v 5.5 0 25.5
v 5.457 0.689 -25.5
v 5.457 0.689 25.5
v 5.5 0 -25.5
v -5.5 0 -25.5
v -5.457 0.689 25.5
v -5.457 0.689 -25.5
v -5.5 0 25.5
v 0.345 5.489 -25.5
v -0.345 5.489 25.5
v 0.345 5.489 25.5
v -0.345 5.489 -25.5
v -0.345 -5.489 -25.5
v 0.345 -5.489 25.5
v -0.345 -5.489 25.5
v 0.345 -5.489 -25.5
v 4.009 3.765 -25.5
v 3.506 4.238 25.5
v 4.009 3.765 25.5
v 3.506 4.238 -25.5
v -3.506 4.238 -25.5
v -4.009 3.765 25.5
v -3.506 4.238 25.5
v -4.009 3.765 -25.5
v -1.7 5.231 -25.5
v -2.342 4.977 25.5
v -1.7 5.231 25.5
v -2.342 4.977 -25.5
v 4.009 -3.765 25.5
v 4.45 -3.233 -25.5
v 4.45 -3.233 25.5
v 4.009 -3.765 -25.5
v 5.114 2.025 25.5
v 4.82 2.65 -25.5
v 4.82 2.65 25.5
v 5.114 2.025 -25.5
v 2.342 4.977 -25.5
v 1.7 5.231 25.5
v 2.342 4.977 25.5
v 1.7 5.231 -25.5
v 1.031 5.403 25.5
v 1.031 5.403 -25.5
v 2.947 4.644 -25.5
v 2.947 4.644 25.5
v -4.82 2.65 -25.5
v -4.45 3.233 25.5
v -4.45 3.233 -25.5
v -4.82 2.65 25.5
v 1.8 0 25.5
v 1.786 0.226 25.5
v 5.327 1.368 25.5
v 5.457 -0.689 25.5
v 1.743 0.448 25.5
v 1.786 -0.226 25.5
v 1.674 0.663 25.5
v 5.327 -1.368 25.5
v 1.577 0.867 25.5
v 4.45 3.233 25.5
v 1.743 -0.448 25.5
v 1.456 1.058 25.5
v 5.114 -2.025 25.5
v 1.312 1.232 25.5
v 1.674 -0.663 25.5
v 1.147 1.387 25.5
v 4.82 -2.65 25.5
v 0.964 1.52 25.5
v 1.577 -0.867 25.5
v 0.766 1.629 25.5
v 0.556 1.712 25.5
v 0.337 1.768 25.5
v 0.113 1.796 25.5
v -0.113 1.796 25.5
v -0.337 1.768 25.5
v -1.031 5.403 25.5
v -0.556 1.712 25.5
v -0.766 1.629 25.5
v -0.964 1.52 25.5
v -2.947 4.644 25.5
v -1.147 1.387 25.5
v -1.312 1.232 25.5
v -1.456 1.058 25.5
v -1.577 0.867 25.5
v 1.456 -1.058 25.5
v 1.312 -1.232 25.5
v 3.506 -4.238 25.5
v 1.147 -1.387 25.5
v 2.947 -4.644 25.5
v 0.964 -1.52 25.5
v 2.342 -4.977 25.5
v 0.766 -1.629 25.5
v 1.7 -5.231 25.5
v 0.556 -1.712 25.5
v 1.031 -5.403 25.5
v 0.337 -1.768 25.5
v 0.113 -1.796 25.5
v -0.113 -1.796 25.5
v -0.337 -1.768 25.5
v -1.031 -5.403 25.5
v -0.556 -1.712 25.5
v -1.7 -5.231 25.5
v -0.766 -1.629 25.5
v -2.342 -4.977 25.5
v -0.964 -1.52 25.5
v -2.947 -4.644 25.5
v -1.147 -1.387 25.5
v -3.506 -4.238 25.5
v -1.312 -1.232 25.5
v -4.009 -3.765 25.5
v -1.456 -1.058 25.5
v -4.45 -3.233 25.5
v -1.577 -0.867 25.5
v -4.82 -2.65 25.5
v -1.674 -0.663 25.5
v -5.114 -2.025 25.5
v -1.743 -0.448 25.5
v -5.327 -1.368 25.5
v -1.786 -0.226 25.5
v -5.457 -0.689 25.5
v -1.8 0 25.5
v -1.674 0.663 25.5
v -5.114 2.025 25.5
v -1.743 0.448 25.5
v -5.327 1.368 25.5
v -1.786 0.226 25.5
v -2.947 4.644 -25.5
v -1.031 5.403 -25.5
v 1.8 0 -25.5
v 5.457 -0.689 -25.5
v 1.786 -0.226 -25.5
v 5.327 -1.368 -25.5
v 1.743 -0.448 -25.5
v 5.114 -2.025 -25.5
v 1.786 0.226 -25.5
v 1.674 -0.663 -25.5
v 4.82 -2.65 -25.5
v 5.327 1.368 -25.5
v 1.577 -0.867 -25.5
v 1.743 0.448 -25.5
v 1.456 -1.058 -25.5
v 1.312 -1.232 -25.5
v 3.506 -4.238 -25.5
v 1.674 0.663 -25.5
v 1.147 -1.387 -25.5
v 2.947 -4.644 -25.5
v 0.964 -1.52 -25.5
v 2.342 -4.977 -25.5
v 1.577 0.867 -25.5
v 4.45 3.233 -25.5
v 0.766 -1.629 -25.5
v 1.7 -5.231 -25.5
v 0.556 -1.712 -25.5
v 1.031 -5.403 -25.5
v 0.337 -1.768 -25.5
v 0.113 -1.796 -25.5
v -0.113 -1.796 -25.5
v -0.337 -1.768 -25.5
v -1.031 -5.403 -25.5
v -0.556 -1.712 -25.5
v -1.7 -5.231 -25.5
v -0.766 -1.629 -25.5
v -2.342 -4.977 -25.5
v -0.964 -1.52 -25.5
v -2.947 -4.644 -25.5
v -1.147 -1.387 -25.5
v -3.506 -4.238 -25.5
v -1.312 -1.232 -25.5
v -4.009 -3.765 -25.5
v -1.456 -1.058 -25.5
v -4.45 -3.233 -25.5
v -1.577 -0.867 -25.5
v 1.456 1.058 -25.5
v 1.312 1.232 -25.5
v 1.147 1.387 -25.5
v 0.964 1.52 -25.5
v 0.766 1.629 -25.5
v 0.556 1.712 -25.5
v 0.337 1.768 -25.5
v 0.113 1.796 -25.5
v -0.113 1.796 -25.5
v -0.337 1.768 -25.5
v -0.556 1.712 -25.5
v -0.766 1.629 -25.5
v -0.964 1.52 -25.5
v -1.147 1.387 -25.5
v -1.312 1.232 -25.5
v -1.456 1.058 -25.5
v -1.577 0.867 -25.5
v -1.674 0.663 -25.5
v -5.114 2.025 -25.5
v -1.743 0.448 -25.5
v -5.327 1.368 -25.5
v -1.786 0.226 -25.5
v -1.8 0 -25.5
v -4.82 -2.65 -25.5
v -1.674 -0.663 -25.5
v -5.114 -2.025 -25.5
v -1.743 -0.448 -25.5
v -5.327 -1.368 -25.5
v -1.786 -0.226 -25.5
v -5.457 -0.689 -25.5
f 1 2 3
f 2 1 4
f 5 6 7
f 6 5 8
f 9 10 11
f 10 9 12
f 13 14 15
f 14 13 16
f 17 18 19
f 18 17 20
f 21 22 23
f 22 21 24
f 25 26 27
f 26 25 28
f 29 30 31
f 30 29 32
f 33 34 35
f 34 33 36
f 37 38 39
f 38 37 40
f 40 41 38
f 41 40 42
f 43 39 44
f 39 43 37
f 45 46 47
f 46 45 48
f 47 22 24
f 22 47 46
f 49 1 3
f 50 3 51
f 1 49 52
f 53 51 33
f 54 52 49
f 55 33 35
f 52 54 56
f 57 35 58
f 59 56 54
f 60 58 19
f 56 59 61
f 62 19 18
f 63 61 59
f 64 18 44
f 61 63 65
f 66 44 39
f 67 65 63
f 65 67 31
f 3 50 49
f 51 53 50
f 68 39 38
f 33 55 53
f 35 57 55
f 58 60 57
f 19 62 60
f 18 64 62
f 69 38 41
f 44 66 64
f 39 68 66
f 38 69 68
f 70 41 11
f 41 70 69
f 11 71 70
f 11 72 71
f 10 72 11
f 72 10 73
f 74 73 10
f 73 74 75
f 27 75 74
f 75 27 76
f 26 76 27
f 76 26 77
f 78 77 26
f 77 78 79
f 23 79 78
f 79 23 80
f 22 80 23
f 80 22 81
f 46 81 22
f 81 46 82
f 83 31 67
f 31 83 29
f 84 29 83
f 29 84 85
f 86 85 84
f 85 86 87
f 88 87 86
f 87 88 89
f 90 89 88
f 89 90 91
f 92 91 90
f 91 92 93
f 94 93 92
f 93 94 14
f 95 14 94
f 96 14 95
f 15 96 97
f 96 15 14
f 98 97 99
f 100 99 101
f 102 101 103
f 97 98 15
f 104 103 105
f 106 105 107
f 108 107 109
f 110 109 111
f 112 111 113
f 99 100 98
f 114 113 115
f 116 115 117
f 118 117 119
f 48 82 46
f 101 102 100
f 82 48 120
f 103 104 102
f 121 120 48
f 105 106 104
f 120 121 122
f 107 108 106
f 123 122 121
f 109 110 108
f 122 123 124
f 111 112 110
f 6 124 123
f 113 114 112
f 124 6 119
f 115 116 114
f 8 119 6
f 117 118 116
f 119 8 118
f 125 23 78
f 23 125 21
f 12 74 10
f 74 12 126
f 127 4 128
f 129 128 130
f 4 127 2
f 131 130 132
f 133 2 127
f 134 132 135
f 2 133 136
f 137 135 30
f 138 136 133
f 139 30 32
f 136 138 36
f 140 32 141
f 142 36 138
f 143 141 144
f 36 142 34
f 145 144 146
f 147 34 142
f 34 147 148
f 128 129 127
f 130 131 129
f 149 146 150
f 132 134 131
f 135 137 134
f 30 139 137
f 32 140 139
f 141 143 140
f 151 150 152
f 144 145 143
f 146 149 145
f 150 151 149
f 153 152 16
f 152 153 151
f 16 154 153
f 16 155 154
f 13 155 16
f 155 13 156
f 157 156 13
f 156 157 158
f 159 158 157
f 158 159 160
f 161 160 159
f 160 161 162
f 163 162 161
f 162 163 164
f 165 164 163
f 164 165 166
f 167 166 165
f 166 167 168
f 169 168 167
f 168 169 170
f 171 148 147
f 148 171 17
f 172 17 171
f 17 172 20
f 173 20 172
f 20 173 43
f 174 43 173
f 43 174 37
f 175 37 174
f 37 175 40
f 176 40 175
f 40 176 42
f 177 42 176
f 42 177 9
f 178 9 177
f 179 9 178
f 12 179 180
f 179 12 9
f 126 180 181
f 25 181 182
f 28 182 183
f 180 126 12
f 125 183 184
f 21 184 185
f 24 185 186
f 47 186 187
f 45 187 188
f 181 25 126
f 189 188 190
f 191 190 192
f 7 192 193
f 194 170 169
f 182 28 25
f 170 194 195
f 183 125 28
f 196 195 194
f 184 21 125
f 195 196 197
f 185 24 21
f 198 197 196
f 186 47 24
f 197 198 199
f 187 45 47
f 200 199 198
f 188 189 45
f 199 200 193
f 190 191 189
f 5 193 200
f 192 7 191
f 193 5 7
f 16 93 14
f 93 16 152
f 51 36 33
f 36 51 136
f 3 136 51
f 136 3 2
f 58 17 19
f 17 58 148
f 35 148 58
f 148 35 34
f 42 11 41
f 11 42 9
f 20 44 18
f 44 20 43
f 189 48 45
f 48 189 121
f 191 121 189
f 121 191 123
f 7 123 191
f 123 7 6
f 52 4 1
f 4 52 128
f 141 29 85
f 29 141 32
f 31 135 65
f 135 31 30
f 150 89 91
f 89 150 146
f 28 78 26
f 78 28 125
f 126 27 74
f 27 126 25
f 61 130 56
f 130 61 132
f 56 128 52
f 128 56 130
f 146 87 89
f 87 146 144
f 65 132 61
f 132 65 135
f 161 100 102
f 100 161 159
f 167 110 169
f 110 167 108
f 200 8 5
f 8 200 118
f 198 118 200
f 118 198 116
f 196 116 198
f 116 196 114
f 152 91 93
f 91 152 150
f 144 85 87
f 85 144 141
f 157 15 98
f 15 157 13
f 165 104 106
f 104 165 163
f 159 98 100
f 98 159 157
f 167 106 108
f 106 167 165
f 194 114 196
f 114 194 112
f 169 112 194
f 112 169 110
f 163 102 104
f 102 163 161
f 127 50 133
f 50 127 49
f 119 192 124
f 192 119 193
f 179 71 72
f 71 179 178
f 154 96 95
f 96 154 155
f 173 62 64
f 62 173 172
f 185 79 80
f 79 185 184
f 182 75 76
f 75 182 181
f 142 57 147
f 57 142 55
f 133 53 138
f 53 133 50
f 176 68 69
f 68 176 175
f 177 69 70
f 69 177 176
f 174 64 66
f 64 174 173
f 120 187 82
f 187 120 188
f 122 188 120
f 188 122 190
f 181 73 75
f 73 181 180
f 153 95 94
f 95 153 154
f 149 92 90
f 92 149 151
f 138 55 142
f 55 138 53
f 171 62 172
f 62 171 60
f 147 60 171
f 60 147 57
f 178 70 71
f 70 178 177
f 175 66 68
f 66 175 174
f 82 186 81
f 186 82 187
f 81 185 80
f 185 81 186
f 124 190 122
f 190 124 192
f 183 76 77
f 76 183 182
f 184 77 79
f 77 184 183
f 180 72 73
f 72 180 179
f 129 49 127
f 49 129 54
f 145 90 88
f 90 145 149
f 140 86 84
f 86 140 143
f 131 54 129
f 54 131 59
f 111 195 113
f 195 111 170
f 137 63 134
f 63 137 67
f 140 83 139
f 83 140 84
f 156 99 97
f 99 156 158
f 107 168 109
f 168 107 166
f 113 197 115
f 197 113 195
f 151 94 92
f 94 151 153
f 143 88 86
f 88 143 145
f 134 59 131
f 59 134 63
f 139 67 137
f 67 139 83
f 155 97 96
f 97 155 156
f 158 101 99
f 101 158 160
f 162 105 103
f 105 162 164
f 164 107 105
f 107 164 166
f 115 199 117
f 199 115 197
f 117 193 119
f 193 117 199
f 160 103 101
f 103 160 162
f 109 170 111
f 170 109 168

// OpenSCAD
$fn = 50;


difference() {
	union() {
		translate(v = [0, 0, -25.5000000000]) {
			cylinder(h = 51, r = 5.5000000000);
		}
	}
	union() {
		translate(v = [0, 0, -100.0000000000]) {
			cylinder(h = 200, r = 1.8000000000);
		}
	}
}
